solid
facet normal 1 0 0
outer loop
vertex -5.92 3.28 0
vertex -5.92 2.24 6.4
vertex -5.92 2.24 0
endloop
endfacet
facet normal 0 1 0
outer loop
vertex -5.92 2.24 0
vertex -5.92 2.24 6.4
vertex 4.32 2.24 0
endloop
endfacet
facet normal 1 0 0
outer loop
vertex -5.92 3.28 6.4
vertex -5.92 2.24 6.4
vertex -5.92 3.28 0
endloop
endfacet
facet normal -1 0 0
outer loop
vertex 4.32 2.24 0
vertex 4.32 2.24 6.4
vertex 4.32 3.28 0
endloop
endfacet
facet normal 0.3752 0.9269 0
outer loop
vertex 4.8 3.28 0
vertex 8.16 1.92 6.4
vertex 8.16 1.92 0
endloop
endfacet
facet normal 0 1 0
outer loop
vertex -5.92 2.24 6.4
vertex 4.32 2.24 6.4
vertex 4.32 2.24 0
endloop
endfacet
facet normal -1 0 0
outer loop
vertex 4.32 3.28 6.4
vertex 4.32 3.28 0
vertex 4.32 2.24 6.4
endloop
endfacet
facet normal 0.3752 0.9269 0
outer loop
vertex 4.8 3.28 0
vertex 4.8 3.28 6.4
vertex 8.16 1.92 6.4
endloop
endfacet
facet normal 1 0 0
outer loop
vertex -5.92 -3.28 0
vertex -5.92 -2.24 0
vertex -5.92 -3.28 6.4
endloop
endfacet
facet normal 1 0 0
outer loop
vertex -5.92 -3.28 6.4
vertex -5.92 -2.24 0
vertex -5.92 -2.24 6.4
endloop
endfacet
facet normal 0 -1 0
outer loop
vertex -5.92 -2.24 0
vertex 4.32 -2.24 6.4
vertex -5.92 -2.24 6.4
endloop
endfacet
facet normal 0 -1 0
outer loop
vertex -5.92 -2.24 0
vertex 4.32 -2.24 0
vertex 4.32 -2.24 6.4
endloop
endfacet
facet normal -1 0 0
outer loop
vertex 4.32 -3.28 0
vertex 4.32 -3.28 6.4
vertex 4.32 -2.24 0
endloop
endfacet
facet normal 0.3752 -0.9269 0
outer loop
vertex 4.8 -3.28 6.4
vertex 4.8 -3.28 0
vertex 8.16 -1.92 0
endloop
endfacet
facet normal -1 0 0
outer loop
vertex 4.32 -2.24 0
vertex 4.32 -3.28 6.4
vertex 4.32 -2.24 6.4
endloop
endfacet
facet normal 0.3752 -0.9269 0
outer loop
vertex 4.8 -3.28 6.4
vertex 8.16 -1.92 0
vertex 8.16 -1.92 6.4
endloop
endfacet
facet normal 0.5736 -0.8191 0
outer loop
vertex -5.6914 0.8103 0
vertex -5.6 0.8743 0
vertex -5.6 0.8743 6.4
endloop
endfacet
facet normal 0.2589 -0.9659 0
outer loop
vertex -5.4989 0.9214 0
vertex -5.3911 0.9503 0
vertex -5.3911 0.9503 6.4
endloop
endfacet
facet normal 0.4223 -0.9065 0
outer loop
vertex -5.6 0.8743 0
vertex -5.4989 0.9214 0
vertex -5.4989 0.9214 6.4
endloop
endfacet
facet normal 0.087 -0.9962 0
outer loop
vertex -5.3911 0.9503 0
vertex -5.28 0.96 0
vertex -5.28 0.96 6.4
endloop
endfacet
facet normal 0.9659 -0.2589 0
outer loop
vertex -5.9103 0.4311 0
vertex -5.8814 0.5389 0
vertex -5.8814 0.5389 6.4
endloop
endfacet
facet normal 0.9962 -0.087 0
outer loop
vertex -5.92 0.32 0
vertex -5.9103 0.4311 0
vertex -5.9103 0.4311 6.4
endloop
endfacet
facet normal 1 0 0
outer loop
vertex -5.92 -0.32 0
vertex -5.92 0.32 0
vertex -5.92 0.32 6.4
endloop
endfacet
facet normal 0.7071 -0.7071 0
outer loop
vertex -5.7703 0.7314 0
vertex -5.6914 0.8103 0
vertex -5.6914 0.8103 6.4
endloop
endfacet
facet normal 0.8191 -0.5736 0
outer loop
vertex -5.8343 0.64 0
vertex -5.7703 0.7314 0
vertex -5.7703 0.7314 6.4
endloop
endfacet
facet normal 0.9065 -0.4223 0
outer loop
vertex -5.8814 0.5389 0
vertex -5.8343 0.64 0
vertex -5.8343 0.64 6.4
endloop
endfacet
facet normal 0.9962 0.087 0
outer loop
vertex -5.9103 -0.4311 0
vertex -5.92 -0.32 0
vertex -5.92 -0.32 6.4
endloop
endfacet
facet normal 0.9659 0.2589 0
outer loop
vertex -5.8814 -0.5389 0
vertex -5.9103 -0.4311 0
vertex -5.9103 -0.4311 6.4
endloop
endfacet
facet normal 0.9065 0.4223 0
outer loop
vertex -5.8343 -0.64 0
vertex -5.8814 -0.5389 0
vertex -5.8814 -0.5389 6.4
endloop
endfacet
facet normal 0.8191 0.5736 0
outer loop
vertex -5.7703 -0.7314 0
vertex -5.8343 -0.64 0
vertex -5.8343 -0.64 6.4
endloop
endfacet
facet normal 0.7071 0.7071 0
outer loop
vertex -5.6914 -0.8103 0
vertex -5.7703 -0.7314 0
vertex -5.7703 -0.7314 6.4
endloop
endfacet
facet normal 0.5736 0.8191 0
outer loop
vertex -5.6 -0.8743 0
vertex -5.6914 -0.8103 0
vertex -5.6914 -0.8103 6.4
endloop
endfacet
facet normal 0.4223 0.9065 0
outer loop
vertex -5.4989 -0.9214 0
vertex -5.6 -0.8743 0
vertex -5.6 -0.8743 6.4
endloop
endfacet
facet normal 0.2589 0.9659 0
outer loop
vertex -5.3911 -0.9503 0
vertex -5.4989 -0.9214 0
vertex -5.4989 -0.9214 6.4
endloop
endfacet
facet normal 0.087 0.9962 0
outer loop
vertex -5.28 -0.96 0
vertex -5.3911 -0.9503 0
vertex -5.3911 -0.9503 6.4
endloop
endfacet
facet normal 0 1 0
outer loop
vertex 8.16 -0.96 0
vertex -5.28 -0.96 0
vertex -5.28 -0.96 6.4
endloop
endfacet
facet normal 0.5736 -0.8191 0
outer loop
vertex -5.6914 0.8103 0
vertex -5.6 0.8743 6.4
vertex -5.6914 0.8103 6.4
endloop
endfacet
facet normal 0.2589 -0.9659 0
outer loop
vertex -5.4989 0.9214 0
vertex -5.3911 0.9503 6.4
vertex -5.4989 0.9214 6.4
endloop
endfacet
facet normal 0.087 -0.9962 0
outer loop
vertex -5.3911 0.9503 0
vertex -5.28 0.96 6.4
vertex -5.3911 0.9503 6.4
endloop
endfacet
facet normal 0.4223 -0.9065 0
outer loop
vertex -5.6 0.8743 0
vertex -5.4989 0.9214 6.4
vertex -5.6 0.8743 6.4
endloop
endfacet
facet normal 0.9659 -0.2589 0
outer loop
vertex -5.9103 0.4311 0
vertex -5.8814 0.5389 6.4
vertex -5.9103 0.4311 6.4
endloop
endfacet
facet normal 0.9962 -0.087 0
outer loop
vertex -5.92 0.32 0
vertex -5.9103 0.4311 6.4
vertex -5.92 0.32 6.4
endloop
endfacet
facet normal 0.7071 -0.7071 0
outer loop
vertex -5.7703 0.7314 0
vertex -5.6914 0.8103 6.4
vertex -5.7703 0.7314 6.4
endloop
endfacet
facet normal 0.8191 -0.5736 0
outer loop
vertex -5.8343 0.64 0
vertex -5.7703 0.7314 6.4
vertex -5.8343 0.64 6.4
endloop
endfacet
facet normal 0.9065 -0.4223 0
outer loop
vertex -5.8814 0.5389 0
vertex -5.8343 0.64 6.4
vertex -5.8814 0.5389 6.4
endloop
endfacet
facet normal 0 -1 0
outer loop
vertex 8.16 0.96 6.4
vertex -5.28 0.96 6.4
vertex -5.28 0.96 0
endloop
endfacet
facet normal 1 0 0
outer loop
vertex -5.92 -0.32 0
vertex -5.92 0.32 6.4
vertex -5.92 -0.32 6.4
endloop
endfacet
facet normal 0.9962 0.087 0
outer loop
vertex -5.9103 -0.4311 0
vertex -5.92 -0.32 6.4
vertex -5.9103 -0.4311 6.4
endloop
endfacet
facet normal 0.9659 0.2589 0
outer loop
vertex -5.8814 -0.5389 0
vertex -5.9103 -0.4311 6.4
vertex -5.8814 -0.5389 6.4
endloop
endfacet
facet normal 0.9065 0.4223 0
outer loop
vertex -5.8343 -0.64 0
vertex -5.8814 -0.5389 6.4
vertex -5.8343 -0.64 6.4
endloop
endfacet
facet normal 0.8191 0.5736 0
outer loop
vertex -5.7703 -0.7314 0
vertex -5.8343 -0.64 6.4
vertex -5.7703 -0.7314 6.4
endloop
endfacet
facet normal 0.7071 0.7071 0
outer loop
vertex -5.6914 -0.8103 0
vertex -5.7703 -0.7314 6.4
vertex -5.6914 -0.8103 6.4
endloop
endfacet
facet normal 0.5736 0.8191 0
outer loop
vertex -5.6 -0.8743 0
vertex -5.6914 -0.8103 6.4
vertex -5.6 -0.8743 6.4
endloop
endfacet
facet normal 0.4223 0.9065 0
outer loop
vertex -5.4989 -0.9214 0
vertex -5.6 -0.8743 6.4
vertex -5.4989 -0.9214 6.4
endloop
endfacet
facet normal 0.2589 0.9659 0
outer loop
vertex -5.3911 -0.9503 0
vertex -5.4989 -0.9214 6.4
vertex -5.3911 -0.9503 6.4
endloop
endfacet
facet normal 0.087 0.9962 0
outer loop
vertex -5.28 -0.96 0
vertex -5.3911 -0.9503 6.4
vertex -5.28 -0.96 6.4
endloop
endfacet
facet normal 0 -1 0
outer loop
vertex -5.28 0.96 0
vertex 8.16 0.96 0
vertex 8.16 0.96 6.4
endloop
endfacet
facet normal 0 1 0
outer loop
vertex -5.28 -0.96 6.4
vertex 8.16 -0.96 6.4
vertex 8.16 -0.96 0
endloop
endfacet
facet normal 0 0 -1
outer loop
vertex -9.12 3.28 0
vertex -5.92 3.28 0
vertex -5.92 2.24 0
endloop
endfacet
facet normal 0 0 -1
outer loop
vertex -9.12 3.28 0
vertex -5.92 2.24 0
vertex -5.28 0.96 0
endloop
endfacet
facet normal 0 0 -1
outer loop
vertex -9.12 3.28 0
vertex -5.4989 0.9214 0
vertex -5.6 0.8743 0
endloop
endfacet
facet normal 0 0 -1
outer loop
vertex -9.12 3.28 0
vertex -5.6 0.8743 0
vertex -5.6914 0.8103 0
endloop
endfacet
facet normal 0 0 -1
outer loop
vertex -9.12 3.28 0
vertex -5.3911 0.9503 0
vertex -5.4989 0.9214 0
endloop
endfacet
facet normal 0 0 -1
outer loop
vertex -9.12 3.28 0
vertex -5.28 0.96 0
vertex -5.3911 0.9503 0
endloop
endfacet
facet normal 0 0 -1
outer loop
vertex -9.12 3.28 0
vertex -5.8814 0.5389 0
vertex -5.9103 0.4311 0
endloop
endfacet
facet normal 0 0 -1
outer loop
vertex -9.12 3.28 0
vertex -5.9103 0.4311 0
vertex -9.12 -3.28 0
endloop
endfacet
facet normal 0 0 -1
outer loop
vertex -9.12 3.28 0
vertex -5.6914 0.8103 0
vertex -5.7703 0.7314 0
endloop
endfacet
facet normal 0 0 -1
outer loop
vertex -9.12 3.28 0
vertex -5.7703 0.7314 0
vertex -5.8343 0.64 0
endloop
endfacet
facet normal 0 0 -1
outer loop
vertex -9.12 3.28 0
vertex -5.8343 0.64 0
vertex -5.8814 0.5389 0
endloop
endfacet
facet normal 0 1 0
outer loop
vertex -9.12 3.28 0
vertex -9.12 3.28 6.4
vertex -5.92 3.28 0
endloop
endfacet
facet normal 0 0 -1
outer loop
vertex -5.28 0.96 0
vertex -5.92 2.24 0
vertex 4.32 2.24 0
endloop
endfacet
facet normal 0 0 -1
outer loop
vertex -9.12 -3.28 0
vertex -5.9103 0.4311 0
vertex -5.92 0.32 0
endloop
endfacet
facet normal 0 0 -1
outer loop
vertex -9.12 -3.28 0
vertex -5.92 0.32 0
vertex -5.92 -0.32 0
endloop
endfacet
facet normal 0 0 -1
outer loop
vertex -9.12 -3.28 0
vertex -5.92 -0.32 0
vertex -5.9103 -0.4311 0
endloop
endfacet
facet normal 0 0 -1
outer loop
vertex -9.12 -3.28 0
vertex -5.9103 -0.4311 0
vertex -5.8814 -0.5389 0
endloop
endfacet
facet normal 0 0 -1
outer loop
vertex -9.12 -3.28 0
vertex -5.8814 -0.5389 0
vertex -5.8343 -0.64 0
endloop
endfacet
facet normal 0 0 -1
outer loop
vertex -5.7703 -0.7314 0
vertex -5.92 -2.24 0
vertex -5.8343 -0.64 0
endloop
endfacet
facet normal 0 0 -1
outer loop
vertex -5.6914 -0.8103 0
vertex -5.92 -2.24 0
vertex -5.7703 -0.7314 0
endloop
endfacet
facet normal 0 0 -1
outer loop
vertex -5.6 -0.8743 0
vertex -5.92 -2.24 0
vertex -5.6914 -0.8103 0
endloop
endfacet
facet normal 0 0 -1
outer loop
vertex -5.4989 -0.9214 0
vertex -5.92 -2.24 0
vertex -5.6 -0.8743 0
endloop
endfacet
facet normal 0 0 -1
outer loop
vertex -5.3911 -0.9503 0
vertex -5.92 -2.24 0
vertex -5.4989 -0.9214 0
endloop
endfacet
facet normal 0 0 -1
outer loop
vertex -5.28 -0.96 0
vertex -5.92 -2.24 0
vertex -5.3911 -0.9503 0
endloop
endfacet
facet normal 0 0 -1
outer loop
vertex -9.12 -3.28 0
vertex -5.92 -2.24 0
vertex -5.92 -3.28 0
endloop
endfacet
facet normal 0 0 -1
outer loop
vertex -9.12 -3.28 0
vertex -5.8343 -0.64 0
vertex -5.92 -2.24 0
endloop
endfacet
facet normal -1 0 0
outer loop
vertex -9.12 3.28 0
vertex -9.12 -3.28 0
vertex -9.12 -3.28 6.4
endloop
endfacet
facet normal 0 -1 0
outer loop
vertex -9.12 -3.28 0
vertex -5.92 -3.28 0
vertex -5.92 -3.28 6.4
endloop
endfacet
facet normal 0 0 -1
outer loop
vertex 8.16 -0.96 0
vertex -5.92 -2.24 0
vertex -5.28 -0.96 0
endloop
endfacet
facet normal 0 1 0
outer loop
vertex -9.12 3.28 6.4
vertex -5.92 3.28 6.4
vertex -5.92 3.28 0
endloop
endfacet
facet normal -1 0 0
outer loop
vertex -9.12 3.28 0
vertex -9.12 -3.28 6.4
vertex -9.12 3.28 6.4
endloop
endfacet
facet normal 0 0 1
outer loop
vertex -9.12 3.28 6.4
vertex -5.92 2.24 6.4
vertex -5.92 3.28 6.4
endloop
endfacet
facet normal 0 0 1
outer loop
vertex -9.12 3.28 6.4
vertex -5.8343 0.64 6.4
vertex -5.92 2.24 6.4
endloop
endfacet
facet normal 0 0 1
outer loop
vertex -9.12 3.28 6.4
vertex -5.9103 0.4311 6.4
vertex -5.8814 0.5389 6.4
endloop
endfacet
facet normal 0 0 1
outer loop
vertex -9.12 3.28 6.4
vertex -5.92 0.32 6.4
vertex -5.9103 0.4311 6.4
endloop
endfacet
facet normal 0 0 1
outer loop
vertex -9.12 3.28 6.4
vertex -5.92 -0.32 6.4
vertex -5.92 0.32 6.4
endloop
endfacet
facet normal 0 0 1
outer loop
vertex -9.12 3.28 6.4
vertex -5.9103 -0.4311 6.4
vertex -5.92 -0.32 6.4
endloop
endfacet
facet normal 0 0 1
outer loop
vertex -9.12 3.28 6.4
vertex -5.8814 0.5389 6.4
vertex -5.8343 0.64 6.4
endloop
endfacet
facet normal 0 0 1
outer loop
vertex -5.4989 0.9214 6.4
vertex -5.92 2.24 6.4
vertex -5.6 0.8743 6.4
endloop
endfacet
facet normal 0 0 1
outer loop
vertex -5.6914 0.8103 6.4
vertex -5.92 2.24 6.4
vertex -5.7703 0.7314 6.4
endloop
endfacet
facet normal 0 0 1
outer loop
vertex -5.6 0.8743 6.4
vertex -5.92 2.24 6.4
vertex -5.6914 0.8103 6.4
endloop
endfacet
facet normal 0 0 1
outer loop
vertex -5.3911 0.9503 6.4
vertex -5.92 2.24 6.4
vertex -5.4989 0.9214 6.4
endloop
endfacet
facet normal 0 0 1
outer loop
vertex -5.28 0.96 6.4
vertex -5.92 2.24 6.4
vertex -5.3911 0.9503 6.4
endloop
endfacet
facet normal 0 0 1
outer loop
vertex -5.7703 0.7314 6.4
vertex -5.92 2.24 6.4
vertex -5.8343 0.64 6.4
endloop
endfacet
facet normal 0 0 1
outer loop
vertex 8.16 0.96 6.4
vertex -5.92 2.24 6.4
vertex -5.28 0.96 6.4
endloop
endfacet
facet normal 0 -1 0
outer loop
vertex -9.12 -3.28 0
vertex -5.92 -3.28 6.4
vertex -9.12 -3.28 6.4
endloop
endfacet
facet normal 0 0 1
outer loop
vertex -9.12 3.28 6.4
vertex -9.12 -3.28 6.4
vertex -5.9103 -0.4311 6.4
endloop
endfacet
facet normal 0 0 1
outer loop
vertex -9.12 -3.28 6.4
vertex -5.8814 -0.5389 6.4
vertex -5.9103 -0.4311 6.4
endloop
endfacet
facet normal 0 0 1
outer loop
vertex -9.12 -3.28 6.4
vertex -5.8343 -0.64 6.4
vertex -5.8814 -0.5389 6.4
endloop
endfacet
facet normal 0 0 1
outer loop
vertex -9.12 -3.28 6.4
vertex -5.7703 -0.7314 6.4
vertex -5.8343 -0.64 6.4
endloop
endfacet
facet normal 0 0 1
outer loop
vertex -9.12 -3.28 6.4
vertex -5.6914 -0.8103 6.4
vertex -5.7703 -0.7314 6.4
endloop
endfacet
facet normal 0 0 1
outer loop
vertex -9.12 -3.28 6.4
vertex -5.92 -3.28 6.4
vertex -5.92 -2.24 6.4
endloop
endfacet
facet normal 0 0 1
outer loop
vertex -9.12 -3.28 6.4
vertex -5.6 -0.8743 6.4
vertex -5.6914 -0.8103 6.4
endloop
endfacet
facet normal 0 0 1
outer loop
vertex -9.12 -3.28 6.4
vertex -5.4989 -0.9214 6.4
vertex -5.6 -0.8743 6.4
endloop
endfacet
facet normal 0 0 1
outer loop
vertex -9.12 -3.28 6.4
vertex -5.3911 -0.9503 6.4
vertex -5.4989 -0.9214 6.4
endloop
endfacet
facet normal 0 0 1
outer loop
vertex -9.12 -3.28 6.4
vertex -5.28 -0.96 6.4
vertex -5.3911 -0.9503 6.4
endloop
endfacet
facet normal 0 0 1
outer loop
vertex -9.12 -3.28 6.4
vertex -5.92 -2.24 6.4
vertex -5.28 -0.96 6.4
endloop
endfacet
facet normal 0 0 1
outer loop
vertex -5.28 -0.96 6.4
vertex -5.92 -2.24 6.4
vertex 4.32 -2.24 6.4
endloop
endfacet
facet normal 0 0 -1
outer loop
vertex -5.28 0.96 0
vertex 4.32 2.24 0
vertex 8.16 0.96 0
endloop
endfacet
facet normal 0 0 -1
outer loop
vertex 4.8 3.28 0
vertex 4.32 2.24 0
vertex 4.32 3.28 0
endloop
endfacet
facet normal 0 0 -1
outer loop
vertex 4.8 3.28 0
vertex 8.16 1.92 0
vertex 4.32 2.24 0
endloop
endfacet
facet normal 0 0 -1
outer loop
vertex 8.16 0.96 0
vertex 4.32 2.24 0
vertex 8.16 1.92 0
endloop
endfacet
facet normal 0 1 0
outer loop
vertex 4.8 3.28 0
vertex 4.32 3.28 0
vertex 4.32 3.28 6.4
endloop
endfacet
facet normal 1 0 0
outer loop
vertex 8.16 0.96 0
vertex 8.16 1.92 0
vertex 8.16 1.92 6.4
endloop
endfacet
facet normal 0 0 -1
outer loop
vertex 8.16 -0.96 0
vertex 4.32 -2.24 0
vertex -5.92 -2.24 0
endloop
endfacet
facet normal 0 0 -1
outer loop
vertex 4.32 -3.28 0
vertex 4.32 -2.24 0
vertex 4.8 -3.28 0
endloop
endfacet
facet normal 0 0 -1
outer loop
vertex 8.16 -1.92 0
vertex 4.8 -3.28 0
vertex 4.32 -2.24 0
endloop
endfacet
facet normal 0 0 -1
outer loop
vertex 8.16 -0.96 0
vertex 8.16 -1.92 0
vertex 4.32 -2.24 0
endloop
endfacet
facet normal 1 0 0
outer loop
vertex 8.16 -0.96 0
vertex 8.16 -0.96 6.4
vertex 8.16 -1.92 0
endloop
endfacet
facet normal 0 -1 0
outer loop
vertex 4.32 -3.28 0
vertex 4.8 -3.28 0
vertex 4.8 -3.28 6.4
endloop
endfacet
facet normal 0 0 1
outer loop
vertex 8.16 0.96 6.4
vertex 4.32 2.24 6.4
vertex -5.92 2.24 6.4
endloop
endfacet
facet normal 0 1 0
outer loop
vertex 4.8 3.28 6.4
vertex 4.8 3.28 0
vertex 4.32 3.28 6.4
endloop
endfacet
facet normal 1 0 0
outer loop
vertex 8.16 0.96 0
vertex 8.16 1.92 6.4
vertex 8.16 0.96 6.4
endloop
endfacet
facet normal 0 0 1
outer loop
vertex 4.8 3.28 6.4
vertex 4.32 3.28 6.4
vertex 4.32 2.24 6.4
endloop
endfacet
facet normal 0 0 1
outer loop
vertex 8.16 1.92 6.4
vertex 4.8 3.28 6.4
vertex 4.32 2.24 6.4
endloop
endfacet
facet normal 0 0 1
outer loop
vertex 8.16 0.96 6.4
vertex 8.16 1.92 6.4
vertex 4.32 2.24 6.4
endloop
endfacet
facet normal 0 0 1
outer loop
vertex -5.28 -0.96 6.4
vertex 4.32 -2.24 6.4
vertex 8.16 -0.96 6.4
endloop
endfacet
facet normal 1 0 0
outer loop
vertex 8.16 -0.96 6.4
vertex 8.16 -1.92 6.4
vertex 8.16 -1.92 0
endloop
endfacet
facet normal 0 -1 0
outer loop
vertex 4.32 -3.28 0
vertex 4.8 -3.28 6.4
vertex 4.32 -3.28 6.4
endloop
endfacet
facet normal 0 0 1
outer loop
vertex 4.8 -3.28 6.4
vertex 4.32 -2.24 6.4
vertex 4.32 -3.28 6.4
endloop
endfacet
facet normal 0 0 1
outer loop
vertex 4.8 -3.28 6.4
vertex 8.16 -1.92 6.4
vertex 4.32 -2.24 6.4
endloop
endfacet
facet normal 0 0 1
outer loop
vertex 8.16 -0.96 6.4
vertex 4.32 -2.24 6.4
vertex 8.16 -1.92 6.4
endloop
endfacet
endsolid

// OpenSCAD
$fn = 50;

difference() {
	union() {
		translate(v = [0, 0, 0]) {
			rotate(a = [90, 0, 0]) {
				difference() {
					union() {
						translate(v = [-9.12, 0, -3.2800000000000002]) {
							cube(size = [17.28, 6.4, 6.5600000000000005]);
						}
					}
					union() {
						translate(v = [0, 6.5, 0]) {
							rotate(a = [90, 0, 0]) {
								linear_extrude(height = 6.6000000000000005) {
									polygon(points = [[-5.92, -2.24], [4.32, -2.24], [4.32, -3.28], [4.8, -3.28], [8.26, -1.879524], [8.26, -3.38], [-5.92, -3.38]]);
								}
							}
						}
						translate(v = [0, 6.5, 0]) {
							rotate(a = [90, 0, 0]) {
								linear_extrude(height = 6.6000000000000005) {
									polygon(points = [[-5.92, 2.24], [4.32, 2.24], [4.32, 3.28], [4.8, 3.28], [8.26, 1.879524], [8.26, 3.38], [-5.92, 3.38]]);
								}
							}
						}
						translate(v = [0, 6.5, 0]) {
							rotate(a = [90, 0, 0]) {
								linear_extrude(height = 6.6000000000000005) {
									polygon(points = [[-5.92, 0.32], [-5.910277, 0.431135], [-5.881403, 0.538893], [-5.834256, 0.64], [-5.770268, 0.731384], [-5.691384, 0.810268], [-5.6, 0.874256], [-5.498893, 0.921403], [-5.391135, 0.950277], [-5.28, 0.96], [8.26, 0.96], [8.26, -0.96], [-5.28, -0.96], [-5.391135, -0.950277], [-5.498893, -0.921403], [-5.6, -0.874256], [-5.691384, -0.810268], [-5.770268, -0.731384], [-5.834256, -0.64], [-5.881403, -0.538893], [-5.910277, -0.431135], [-5.92, -0.32]]);
								}
							}
						}
					}
				}
			}
		}
	}
	union();
}
